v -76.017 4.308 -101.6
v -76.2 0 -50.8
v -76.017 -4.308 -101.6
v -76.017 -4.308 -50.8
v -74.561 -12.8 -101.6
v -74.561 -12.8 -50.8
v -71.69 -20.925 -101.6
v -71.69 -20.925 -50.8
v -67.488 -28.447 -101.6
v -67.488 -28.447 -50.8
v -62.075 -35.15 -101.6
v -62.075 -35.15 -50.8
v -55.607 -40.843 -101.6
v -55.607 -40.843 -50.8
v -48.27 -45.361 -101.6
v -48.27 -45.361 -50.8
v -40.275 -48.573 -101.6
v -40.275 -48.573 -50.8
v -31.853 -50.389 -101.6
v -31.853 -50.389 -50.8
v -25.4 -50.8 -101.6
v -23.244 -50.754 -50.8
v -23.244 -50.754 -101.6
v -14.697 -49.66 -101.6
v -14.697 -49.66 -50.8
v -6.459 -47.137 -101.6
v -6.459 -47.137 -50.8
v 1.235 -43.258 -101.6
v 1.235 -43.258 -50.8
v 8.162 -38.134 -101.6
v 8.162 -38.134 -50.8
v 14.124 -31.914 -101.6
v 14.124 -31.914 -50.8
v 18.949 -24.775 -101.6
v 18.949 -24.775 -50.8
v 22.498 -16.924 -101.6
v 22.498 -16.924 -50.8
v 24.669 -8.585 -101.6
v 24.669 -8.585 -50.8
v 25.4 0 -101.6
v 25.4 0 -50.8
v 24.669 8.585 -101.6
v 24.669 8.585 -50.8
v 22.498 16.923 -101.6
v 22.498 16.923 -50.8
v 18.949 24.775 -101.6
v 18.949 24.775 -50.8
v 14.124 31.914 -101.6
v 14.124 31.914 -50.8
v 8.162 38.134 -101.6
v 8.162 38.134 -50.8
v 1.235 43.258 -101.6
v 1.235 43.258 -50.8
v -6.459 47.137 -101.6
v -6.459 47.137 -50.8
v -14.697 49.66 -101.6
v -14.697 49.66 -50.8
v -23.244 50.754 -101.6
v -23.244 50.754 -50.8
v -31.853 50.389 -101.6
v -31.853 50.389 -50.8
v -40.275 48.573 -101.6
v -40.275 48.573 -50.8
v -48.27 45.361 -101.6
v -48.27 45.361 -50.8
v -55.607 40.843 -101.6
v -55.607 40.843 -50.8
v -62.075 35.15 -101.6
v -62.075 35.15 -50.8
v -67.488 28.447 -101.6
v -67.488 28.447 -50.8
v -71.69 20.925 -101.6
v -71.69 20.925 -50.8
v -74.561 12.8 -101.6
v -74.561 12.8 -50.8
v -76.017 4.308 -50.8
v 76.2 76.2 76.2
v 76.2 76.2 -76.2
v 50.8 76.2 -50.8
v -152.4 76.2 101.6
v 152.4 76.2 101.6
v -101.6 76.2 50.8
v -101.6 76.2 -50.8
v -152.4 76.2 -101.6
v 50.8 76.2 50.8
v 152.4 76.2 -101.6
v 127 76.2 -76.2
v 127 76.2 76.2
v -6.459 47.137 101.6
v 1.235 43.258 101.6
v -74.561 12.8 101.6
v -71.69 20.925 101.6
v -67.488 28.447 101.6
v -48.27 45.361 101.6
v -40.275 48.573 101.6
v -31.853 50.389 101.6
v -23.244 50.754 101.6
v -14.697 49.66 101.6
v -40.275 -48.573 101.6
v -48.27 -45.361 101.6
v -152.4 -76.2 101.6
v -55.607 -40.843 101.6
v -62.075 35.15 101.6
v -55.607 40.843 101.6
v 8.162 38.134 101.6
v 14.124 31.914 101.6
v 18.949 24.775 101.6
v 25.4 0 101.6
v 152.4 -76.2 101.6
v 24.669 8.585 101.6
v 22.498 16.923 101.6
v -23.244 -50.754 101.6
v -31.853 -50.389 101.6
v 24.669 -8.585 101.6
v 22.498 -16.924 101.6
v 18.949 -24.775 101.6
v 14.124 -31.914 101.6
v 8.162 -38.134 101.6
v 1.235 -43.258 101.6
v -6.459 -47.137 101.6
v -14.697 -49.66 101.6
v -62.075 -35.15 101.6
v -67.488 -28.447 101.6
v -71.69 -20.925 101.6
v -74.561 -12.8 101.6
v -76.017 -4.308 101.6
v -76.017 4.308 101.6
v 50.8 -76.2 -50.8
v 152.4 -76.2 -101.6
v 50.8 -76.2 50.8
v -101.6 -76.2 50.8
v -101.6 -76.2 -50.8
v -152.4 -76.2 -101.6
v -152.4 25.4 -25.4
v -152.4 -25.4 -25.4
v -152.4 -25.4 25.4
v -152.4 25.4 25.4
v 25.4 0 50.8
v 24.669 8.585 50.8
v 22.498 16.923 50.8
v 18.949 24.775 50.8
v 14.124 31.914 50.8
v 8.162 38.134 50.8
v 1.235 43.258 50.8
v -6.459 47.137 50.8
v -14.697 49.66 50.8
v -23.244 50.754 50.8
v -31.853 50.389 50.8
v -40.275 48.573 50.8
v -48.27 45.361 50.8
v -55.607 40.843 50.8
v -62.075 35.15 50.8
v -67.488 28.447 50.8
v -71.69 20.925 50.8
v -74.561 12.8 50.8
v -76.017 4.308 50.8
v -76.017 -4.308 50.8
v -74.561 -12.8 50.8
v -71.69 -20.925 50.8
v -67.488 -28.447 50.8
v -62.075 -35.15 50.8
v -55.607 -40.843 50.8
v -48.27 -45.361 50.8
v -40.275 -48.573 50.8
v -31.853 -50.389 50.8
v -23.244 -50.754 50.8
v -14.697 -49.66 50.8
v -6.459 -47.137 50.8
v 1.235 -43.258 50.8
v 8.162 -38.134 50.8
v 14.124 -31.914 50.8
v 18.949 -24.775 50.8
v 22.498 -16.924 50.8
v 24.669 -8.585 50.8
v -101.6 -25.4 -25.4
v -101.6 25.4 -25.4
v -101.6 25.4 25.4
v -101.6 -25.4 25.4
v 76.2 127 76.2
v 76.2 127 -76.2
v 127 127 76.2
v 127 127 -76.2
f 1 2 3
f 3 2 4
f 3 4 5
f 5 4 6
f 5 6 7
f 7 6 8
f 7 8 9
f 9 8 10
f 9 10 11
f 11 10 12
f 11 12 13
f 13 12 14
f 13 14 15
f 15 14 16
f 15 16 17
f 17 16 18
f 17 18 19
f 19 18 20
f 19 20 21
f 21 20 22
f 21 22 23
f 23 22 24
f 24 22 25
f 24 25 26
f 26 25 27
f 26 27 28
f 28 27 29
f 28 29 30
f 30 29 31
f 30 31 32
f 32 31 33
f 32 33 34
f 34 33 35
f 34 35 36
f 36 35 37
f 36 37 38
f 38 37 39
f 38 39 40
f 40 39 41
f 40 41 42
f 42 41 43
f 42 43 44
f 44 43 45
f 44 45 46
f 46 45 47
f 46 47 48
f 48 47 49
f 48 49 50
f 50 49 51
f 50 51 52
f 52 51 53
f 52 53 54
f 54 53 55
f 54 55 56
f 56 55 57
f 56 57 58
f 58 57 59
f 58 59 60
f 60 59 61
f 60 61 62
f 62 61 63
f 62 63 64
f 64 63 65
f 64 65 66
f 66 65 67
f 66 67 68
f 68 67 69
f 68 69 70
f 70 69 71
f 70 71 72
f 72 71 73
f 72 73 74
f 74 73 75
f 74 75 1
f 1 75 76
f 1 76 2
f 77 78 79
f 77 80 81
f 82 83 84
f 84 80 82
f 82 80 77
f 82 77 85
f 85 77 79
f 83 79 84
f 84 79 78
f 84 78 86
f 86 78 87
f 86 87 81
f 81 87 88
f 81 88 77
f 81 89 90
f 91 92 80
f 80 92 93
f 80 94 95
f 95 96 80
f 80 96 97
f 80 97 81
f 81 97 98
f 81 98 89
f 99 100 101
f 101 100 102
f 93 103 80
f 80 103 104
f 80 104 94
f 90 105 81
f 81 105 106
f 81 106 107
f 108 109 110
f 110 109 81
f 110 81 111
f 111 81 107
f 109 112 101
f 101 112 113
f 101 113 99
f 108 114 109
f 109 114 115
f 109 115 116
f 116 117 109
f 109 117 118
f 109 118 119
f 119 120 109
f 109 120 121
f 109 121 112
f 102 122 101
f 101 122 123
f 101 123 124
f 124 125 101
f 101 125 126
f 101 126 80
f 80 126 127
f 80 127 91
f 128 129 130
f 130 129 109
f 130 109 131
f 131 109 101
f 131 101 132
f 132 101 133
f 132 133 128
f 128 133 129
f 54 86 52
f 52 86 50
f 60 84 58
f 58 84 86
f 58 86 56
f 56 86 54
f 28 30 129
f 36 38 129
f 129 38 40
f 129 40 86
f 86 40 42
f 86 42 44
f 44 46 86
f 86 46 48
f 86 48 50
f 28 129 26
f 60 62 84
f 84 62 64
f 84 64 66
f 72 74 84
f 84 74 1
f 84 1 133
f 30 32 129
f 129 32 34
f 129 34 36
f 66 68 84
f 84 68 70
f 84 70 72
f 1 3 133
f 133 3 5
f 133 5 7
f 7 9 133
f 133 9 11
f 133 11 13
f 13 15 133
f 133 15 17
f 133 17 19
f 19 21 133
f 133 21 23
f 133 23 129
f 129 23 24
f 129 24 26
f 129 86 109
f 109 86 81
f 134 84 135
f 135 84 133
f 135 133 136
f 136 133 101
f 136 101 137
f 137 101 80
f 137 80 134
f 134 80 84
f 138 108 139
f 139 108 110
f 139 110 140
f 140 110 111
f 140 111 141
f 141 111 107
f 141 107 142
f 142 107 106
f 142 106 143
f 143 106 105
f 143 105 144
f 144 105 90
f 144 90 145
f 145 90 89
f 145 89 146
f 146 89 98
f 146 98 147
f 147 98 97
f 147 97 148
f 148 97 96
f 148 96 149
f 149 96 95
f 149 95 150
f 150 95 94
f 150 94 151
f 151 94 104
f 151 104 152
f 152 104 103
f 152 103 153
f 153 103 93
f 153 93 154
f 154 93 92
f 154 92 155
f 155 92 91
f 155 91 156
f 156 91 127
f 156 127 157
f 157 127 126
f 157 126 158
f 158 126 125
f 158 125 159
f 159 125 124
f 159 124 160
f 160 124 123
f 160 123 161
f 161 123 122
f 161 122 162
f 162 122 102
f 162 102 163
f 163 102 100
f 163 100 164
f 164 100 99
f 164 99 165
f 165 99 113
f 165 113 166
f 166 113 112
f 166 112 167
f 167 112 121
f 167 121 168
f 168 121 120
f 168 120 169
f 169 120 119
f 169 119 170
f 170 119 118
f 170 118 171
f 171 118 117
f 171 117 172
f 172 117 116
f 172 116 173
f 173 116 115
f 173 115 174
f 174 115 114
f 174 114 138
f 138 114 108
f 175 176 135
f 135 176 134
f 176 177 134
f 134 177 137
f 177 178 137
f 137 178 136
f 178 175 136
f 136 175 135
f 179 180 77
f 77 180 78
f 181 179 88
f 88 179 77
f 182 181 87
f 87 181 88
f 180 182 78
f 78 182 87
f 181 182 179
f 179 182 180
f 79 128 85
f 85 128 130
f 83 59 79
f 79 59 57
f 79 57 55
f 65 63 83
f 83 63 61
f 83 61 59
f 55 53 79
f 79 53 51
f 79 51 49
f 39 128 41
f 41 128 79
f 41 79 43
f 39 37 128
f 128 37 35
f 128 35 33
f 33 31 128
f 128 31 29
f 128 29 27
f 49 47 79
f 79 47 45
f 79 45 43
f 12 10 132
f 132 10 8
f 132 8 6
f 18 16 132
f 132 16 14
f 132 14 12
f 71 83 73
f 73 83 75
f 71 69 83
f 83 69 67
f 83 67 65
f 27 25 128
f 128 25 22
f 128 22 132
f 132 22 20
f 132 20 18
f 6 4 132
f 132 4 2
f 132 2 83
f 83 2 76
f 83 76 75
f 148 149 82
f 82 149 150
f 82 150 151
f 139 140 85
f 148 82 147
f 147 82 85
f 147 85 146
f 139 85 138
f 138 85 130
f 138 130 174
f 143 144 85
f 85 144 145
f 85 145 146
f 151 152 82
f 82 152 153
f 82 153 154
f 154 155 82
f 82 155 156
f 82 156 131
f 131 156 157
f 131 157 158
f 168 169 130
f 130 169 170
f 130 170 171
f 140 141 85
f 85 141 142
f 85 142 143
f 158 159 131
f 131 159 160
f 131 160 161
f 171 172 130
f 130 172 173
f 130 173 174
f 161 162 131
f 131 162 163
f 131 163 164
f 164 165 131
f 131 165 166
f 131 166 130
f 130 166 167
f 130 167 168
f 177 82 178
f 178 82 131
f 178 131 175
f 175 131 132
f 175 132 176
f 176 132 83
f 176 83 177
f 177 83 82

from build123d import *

# Parameters (mm, degrees)
SKETCH2_W           = 203.2
SKETCH2_H           = 152.4
BOSS_EXTRUDE1_DEPTH = 152.4
SKETCH6_R           = 50.8
CUT_EXTRUDE2_DEPTH  = 228.6
SKETCH7_W           = 50.8
SKETCH7_H           = 50.8
CUT_EXTRUDE3_DEPTH  = 50.8
SKETCH5_W           = 50.8
SKETCH5_H           = 152.4
BOSS_EXTRUDE3_DEPTH = 50.8
SKETCH3_W           = 152.4
SKETCH3_H           = 101.6
CUT_EXTRUDE4_DEPTH  = 228.6


with BuildPart() as part:
    # Sketch2 → Boss-Extrude1 (new, symmetric)
    with BuildSketch(Plane(origin=(0, 0, 0), x_dir=(0, 0, -1), z_dir=(1, 0, 0))):
        Rectangle(SKETCH2_W, SKETCH2_H)
    extrude(amount=BOSS_EXTRUDE1_DEPTH, both=True)

    # Sketch6 → Cut-Extrude2 (cut)
    with BuildSketch(Plane.XY.offset(101.6)):
        with Locations((-25.4, 0)):
            Circle(SKETCH6_R)
    extrude(amount=-CUT_EXTRUDE2_DEPTH, mode=Mode.SUBTRACT)

    # Sketch7 → Cut-Extrude3 (cut)
    with BuildSketch(Plane.ZY.offset(152.4)):
        Rectangle(SKETCH7_W, SKETCH7_H)
    extrude(amount=-CUT_EXTRUDE3_DEPTH, mode=Mode.SUBTRACT)

    # Sketch5 → Boss-Extrude3 (add)
    with BuildSketch(Plane(origin=(0, 76.2, 0), x_dir=(1, 0, 0), z_dir=(0, 1, 0))):
        with Locations((101.6, 0)):
            Rectangle(SKETCH5_W, SKETCH5_H)
    extrude(amount=BOSS_EXTRUDE3_DEPTH)

    # Sketch3 → Cut-Extrude4 (cut)
    with BuildSketch(Plane(origin=(0, 76.2, 0), x_dir=(1, 0, 0), z_dir=(0, 1, 0))):
        with Locations((-25.4, 0)):
            Rectangle(SKETCH3_W, SKETCH3_H)
    extrude(amount=-CUT_EXTRUDE4_DEPTH, mode=Mode.SUBTRACT)


solid = part.part
